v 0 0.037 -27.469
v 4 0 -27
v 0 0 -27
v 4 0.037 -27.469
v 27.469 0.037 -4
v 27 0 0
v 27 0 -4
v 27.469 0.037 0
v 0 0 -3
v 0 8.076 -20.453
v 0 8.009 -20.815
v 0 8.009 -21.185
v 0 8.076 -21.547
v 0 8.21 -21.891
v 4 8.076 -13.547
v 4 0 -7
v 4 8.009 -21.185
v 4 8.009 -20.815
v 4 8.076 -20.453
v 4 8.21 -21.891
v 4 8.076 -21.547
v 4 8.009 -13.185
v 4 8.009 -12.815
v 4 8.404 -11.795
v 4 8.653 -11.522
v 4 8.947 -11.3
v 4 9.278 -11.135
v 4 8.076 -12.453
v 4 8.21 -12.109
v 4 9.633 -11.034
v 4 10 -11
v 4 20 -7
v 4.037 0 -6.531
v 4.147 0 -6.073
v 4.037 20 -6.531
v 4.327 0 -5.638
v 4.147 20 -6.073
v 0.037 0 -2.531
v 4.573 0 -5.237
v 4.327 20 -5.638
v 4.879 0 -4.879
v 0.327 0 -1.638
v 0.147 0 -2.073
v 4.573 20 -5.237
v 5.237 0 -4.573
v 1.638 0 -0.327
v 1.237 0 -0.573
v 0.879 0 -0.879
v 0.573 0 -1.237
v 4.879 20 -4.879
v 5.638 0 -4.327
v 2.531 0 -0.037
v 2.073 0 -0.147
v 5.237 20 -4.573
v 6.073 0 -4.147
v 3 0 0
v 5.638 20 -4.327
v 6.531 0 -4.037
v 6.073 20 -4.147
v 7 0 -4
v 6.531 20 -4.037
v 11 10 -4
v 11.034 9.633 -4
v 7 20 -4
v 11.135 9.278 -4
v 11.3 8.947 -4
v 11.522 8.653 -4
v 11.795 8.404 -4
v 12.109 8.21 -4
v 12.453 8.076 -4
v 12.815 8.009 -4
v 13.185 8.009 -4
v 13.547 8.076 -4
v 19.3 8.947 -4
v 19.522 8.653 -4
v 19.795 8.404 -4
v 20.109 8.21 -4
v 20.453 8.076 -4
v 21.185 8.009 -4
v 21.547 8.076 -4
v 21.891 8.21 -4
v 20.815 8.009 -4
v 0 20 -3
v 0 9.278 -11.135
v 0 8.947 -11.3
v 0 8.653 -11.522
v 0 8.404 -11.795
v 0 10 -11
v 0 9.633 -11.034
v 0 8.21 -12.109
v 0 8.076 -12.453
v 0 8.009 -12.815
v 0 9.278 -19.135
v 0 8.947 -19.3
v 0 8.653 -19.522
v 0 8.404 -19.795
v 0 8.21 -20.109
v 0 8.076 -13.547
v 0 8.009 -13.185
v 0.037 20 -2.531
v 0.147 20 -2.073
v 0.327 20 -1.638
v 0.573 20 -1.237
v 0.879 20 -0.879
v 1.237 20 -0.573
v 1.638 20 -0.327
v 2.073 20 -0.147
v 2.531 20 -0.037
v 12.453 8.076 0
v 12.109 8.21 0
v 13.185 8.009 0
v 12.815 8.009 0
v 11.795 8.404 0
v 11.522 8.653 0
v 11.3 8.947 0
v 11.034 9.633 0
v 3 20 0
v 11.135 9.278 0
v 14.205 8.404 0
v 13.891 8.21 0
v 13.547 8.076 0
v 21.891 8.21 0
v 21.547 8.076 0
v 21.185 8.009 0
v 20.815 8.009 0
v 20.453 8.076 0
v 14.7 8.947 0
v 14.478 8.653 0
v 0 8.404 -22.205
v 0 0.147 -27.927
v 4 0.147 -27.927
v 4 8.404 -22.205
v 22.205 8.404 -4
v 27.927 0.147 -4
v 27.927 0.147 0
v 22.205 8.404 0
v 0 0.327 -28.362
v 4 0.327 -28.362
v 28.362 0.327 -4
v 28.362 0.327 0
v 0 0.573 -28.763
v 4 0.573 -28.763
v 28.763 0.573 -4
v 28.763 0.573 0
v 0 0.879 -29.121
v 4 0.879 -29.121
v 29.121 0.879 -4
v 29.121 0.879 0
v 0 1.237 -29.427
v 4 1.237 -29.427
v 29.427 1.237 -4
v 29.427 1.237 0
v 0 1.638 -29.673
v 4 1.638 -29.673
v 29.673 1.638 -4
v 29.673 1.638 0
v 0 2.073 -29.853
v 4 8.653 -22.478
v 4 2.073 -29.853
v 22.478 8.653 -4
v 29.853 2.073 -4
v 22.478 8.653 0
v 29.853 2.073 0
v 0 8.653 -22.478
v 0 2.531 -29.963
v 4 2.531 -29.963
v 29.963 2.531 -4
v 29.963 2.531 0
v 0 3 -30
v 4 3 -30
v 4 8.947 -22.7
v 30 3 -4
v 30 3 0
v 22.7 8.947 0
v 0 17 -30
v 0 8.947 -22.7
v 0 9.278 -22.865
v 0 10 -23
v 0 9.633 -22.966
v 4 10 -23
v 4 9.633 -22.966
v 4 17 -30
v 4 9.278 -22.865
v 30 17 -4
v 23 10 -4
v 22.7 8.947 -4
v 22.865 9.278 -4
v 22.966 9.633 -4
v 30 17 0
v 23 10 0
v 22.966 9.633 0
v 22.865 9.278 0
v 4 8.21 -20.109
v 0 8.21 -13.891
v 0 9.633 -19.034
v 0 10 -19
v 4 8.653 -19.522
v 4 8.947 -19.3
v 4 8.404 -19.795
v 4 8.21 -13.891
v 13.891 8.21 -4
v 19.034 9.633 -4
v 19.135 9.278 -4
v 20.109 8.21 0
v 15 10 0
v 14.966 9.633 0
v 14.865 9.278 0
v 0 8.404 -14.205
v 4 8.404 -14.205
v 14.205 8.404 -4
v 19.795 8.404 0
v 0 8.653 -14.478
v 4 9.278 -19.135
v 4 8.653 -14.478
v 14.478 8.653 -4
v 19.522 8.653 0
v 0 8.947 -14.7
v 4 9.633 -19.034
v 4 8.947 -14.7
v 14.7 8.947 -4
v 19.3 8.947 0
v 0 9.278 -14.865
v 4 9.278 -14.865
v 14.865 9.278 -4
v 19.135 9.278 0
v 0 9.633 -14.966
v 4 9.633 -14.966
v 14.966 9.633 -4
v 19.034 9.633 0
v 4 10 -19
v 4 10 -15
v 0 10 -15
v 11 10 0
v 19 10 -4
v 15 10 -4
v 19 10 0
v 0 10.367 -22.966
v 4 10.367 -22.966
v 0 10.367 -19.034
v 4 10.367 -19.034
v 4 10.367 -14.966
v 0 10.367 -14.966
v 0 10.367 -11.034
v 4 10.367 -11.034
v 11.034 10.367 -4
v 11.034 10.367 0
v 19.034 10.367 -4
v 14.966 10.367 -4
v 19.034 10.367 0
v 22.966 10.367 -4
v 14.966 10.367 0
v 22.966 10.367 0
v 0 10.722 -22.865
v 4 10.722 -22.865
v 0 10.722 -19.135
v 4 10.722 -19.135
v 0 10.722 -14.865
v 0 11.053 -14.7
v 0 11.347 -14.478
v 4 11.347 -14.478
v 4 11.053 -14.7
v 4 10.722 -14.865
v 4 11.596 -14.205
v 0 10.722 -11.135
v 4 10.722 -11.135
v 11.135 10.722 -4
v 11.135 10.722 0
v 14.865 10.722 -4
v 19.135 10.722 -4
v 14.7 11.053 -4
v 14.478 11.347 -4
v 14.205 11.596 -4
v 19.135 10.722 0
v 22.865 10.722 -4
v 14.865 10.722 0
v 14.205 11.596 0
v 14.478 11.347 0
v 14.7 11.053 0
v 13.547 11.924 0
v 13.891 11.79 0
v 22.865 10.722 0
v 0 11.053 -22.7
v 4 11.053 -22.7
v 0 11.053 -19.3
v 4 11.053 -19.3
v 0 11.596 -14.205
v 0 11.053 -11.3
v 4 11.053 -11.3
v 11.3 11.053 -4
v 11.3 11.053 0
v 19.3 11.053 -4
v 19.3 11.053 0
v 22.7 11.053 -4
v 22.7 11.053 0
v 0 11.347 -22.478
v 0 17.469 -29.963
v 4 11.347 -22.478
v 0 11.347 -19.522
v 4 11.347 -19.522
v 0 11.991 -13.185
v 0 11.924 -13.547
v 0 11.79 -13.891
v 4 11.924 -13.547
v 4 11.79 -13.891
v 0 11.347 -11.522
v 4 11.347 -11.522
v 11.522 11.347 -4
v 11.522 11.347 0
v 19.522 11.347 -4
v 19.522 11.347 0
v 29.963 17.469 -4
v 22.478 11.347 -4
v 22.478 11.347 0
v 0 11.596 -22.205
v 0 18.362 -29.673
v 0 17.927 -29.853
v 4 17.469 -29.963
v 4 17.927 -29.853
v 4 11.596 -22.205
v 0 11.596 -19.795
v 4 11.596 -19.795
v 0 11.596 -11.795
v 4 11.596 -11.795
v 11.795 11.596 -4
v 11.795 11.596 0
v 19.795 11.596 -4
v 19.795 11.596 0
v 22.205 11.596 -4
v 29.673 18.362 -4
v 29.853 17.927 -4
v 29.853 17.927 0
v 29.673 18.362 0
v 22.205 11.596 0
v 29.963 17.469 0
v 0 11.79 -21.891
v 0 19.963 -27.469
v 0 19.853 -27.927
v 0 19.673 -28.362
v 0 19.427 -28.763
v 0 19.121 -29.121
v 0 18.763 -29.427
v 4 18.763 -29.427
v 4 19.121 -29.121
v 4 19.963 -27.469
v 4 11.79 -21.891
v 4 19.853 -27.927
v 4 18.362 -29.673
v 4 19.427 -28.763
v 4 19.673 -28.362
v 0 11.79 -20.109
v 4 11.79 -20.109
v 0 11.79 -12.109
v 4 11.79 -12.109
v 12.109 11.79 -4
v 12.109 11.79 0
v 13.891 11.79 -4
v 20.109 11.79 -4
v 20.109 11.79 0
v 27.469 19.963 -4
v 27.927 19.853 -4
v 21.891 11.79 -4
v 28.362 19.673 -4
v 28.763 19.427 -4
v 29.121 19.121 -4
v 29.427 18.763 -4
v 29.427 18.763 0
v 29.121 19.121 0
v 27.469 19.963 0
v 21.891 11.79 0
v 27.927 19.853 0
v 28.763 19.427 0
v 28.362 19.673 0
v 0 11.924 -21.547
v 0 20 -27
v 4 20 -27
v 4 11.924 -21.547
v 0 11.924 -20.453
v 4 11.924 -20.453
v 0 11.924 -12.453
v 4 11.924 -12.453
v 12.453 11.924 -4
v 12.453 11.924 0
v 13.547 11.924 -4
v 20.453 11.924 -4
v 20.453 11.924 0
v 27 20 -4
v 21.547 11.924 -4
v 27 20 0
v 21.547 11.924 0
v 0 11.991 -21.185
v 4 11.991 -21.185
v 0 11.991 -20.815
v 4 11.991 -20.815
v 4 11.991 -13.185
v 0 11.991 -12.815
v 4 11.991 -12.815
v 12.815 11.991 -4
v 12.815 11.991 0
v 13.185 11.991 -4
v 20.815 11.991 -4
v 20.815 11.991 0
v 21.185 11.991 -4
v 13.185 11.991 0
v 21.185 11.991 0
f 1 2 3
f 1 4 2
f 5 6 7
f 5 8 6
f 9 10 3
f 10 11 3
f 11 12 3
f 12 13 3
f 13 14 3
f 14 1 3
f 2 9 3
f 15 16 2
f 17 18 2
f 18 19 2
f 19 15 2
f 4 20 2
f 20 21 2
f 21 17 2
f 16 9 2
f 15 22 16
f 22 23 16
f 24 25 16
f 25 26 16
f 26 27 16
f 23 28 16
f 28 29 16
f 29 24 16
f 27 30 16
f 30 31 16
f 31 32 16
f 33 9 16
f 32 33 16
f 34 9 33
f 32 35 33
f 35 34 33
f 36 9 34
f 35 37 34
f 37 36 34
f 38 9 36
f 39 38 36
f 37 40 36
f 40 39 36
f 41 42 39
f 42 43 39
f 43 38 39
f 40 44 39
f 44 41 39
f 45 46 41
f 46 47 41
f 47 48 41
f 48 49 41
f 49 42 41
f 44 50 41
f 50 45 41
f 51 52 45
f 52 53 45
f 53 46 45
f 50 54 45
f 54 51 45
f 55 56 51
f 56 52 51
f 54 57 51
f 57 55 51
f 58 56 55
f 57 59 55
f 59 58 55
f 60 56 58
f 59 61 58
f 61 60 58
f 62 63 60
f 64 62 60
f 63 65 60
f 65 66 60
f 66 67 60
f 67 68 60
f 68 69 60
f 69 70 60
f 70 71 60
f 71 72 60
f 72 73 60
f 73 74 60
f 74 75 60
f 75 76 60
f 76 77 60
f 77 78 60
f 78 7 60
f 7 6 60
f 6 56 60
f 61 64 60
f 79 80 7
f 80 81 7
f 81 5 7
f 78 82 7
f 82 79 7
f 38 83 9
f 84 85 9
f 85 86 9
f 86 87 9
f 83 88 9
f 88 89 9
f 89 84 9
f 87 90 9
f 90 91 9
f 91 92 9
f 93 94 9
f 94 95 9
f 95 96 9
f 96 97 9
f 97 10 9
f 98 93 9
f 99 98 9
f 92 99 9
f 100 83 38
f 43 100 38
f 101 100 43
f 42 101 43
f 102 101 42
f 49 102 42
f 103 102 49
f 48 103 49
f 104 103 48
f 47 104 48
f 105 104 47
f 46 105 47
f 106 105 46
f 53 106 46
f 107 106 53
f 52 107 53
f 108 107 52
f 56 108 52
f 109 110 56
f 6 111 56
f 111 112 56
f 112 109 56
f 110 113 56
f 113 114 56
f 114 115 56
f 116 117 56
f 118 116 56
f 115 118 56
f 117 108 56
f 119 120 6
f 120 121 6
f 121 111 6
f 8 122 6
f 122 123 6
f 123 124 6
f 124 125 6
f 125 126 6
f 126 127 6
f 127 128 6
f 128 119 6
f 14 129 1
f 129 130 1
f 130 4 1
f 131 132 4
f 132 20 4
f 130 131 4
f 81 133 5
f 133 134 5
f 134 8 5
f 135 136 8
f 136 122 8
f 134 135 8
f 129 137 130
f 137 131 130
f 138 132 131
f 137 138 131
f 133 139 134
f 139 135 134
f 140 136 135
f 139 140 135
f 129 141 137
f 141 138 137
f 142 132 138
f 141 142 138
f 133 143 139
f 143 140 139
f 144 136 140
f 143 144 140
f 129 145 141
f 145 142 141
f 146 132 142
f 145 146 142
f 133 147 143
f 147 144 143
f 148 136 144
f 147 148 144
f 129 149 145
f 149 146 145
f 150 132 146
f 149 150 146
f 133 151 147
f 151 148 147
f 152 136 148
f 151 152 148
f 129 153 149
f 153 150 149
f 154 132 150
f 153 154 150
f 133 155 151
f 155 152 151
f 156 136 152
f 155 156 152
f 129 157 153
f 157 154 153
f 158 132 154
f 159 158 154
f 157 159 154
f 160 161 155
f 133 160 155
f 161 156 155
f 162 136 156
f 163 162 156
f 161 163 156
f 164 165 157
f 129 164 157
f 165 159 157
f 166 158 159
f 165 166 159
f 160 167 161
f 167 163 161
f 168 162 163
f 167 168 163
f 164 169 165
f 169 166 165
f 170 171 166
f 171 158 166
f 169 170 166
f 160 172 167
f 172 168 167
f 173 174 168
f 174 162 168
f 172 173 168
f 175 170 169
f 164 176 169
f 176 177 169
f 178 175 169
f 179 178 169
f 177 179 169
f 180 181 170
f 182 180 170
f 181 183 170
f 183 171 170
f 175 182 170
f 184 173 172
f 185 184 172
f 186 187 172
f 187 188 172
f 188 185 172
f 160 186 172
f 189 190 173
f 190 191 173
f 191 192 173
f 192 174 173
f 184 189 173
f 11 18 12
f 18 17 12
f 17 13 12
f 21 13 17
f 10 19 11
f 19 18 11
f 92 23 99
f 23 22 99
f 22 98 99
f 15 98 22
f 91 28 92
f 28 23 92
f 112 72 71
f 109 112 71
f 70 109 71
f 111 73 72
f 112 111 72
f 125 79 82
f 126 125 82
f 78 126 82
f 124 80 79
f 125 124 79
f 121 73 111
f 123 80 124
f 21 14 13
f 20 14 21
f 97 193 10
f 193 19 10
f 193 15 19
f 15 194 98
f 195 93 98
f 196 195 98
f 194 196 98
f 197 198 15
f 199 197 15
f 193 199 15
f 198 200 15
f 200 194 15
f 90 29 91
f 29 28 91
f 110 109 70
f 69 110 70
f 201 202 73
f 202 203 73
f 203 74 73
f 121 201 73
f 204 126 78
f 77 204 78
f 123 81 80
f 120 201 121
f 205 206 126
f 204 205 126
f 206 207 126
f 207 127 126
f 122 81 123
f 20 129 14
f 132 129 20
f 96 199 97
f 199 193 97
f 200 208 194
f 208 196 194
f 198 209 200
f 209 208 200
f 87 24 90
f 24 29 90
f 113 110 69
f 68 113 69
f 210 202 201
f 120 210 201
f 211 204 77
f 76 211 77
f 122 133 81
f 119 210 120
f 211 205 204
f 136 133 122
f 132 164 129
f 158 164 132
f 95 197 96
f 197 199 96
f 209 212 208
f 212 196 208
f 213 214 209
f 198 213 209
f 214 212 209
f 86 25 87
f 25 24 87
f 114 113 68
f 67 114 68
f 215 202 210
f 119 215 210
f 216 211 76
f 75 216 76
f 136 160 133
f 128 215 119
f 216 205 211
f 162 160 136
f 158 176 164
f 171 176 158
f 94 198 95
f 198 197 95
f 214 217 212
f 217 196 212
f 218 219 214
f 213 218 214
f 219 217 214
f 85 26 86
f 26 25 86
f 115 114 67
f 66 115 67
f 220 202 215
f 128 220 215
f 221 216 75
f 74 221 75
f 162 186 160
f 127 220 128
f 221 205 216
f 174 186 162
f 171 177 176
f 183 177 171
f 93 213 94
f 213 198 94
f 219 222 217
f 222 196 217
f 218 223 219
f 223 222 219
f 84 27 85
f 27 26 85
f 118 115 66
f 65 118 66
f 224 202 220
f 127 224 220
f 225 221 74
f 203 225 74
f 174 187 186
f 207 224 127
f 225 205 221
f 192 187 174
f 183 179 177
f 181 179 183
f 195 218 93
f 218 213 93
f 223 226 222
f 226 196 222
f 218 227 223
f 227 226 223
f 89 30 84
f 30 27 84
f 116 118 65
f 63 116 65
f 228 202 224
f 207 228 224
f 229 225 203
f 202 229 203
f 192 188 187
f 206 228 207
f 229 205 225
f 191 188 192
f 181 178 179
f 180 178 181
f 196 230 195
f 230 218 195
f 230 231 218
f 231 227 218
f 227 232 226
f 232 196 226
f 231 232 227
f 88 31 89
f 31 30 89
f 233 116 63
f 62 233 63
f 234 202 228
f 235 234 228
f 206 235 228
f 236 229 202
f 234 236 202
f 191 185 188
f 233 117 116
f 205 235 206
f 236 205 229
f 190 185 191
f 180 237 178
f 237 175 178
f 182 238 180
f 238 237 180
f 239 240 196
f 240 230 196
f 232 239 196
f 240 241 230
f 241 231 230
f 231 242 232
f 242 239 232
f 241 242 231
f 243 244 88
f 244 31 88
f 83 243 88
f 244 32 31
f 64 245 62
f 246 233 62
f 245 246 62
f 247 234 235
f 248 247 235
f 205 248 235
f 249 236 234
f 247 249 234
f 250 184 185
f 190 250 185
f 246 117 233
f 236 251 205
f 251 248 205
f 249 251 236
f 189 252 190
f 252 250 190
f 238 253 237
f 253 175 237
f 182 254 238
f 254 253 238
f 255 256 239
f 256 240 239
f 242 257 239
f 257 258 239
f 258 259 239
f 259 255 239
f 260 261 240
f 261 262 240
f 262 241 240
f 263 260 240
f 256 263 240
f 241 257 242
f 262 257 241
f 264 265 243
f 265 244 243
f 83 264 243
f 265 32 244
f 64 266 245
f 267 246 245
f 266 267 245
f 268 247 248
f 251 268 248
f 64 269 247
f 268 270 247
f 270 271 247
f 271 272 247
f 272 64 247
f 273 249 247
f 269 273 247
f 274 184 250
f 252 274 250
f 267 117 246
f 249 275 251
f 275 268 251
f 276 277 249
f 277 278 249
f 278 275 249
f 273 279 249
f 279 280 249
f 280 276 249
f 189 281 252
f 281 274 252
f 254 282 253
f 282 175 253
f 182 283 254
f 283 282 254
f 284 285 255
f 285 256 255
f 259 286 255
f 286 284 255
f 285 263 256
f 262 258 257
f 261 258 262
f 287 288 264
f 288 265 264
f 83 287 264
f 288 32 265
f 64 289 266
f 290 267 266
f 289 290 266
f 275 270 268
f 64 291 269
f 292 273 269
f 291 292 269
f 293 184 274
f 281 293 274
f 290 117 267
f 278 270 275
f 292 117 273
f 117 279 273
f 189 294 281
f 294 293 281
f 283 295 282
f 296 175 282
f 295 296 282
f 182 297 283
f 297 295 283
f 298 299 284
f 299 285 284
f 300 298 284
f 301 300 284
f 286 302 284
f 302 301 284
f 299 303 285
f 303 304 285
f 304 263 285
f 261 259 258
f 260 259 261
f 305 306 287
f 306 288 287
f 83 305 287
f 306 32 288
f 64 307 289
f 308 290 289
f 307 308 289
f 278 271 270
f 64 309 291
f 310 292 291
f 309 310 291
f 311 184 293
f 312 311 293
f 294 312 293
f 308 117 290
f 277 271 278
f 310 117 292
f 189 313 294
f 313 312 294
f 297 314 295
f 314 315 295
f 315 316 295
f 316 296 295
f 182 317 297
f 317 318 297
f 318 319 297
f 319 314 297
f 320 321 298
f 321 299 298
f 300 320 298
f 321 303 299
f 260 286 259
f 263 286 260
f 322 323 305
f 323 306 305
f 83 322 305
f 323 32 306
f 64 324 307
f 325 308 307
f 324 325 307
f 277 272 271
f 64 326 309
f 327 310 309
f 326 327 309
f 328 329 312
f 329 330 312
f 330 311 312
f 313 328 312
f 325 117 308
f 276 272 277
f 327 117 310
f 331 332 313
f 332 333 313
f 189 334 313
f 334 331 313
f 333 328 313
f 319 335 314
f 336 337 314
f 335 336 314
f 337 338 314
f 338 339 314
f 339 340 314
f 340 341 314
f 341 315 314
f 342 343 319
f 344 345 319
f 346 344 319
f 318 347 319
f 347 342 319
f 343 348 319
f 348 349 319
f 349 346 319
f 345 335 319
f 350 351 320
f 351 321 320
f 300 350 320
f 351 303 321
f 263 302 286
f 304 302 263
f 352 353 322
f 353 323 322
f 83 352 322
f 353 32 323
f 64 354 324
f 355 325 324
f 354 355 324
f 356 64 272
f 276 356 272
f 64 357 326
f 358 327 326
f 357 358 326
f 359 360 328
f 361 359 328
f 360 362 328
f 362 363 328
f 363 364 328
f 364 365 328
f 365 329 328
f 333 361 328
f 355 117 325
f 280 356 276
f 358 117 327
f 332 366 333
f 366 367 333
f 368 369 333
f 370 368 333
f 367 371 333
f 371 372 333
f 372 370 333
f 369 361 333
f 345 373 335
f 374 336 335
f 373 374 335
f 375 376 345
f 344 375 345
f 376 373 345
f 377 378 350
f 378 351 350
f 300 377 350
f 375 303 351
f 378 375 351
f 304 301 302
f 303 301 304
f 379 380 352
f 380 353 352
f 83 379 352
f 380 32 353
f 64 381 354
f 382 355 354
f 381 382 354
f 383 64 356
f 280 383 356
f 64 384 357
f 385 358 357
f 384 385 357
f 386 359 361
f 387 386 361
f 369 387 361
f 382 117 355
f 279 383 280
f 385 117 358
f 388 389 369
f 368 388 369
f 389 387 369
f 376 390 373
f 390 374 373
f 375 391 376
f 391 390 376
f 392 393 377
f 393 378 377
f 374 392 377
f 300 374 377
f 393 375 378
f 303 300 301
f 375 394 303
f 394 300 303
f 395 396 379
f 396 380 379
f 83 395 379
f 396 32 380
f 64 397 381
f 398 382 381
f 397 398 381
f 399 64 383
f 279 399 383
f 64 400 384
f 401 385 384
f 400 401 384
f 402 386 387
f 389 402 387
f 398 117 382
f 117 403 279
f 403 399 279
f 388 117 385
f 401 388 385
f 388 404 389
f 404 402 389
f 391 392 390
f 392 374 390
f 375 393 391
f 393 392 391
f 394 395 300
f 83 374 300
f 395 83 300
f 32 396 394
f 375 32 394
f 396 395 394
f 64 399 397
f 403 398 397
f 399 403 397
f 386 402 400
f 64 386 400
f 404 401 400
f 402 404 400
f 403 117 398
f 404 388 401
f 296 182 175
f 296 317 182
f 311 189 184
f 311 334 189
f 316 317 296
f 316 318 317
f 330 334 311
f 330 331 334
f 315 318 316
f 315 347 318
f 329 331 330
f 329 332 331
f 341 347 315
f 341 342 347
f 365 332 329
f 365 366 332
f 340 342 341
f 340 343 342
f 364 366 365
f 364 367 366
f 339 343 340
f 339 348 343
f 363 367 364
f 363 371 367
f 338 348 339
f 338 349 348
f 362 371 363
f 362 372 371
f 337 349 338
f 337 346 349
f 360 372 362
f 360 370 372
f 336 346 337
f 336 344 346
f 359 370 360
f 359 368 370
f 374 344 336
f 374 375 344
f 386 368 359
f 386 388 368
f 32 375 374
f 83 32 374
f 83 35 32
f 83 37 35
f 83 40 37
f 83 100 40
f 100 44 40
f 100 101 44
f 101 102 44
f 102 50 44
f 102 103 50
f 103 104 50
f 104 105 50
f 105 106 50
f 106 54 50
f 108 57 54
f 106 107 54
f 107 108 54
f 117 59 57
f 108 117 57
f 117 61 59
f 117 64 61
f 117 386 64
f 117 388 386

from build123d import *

# Parameters (mm, degrees)
BOSS_EXTRUDE1_DEPTH = 20
SKETCH2_R           = 2
CUT_EXTRUDE1_DEPTH  = 5
SKETCH3_R           = 2
CUT_EXTRUDE2_DEPTH  = 5
FILLET1_R           = 3


with BuildPart() as part:
    # Sketch1 → Boss-Extrude1 (new body)
    with BuildSketch(Plane(origin=(0, 0, 0), x_dir=(1, 0, 0), z_dir=(0, 1, 0))):
        Polygon((0, 0), (0, 30), (4, 30), (4, 4), (30, 4), (30, 0), align=None)
    extrude(amount=BOSS_EXTRUDE1_DEPTH)

    # Sketch2 → Cut-Extrude1 (cut, through all)
    with BuildSketch(Plane(origin=(4, 0, 0), x_dir=(0, 0, -1), z_dir=(1, 0, 0))):
        with Locations((13, 10)):
            Circle(SKETCH2_R)
        with Locations((21, 10)):
            Circle(SKETCH2_R)
    extrude(amount=-CUT_EXTRUDE1_DEPTH, mode=Mode.SUBTRACT)

    # Sketch3 → Cut-Extrude2 (cut, through all)
    with BuildSketch(Plane(origin=(0, 0, -4), x_dir=(-1, 0, 0), z_dir=(0, 0, -1))):
        with Locations((-21, 10)):
            Circle(SKETCH3_R)
        with Locations((-13, 10)):
            Circle(SKETCH3_R)
    extrude(amount=-CUT_EXTRUDE2_DEPTH, mode=Mode.SUBTRACT)

    # Fillet1
    fillet1_edges = [part.edges().sort_by_distance(p)[0] for p in [
        (0, 10, 0),
        (4, 10, -4),
        (2, 20, -30),
        (2, 0, -30),
        (30, 20, -2),
        (30, 0, -2),
    ]]
    fillet(fillet1_edges, radius=FILLET1_R)


solid = part.part
